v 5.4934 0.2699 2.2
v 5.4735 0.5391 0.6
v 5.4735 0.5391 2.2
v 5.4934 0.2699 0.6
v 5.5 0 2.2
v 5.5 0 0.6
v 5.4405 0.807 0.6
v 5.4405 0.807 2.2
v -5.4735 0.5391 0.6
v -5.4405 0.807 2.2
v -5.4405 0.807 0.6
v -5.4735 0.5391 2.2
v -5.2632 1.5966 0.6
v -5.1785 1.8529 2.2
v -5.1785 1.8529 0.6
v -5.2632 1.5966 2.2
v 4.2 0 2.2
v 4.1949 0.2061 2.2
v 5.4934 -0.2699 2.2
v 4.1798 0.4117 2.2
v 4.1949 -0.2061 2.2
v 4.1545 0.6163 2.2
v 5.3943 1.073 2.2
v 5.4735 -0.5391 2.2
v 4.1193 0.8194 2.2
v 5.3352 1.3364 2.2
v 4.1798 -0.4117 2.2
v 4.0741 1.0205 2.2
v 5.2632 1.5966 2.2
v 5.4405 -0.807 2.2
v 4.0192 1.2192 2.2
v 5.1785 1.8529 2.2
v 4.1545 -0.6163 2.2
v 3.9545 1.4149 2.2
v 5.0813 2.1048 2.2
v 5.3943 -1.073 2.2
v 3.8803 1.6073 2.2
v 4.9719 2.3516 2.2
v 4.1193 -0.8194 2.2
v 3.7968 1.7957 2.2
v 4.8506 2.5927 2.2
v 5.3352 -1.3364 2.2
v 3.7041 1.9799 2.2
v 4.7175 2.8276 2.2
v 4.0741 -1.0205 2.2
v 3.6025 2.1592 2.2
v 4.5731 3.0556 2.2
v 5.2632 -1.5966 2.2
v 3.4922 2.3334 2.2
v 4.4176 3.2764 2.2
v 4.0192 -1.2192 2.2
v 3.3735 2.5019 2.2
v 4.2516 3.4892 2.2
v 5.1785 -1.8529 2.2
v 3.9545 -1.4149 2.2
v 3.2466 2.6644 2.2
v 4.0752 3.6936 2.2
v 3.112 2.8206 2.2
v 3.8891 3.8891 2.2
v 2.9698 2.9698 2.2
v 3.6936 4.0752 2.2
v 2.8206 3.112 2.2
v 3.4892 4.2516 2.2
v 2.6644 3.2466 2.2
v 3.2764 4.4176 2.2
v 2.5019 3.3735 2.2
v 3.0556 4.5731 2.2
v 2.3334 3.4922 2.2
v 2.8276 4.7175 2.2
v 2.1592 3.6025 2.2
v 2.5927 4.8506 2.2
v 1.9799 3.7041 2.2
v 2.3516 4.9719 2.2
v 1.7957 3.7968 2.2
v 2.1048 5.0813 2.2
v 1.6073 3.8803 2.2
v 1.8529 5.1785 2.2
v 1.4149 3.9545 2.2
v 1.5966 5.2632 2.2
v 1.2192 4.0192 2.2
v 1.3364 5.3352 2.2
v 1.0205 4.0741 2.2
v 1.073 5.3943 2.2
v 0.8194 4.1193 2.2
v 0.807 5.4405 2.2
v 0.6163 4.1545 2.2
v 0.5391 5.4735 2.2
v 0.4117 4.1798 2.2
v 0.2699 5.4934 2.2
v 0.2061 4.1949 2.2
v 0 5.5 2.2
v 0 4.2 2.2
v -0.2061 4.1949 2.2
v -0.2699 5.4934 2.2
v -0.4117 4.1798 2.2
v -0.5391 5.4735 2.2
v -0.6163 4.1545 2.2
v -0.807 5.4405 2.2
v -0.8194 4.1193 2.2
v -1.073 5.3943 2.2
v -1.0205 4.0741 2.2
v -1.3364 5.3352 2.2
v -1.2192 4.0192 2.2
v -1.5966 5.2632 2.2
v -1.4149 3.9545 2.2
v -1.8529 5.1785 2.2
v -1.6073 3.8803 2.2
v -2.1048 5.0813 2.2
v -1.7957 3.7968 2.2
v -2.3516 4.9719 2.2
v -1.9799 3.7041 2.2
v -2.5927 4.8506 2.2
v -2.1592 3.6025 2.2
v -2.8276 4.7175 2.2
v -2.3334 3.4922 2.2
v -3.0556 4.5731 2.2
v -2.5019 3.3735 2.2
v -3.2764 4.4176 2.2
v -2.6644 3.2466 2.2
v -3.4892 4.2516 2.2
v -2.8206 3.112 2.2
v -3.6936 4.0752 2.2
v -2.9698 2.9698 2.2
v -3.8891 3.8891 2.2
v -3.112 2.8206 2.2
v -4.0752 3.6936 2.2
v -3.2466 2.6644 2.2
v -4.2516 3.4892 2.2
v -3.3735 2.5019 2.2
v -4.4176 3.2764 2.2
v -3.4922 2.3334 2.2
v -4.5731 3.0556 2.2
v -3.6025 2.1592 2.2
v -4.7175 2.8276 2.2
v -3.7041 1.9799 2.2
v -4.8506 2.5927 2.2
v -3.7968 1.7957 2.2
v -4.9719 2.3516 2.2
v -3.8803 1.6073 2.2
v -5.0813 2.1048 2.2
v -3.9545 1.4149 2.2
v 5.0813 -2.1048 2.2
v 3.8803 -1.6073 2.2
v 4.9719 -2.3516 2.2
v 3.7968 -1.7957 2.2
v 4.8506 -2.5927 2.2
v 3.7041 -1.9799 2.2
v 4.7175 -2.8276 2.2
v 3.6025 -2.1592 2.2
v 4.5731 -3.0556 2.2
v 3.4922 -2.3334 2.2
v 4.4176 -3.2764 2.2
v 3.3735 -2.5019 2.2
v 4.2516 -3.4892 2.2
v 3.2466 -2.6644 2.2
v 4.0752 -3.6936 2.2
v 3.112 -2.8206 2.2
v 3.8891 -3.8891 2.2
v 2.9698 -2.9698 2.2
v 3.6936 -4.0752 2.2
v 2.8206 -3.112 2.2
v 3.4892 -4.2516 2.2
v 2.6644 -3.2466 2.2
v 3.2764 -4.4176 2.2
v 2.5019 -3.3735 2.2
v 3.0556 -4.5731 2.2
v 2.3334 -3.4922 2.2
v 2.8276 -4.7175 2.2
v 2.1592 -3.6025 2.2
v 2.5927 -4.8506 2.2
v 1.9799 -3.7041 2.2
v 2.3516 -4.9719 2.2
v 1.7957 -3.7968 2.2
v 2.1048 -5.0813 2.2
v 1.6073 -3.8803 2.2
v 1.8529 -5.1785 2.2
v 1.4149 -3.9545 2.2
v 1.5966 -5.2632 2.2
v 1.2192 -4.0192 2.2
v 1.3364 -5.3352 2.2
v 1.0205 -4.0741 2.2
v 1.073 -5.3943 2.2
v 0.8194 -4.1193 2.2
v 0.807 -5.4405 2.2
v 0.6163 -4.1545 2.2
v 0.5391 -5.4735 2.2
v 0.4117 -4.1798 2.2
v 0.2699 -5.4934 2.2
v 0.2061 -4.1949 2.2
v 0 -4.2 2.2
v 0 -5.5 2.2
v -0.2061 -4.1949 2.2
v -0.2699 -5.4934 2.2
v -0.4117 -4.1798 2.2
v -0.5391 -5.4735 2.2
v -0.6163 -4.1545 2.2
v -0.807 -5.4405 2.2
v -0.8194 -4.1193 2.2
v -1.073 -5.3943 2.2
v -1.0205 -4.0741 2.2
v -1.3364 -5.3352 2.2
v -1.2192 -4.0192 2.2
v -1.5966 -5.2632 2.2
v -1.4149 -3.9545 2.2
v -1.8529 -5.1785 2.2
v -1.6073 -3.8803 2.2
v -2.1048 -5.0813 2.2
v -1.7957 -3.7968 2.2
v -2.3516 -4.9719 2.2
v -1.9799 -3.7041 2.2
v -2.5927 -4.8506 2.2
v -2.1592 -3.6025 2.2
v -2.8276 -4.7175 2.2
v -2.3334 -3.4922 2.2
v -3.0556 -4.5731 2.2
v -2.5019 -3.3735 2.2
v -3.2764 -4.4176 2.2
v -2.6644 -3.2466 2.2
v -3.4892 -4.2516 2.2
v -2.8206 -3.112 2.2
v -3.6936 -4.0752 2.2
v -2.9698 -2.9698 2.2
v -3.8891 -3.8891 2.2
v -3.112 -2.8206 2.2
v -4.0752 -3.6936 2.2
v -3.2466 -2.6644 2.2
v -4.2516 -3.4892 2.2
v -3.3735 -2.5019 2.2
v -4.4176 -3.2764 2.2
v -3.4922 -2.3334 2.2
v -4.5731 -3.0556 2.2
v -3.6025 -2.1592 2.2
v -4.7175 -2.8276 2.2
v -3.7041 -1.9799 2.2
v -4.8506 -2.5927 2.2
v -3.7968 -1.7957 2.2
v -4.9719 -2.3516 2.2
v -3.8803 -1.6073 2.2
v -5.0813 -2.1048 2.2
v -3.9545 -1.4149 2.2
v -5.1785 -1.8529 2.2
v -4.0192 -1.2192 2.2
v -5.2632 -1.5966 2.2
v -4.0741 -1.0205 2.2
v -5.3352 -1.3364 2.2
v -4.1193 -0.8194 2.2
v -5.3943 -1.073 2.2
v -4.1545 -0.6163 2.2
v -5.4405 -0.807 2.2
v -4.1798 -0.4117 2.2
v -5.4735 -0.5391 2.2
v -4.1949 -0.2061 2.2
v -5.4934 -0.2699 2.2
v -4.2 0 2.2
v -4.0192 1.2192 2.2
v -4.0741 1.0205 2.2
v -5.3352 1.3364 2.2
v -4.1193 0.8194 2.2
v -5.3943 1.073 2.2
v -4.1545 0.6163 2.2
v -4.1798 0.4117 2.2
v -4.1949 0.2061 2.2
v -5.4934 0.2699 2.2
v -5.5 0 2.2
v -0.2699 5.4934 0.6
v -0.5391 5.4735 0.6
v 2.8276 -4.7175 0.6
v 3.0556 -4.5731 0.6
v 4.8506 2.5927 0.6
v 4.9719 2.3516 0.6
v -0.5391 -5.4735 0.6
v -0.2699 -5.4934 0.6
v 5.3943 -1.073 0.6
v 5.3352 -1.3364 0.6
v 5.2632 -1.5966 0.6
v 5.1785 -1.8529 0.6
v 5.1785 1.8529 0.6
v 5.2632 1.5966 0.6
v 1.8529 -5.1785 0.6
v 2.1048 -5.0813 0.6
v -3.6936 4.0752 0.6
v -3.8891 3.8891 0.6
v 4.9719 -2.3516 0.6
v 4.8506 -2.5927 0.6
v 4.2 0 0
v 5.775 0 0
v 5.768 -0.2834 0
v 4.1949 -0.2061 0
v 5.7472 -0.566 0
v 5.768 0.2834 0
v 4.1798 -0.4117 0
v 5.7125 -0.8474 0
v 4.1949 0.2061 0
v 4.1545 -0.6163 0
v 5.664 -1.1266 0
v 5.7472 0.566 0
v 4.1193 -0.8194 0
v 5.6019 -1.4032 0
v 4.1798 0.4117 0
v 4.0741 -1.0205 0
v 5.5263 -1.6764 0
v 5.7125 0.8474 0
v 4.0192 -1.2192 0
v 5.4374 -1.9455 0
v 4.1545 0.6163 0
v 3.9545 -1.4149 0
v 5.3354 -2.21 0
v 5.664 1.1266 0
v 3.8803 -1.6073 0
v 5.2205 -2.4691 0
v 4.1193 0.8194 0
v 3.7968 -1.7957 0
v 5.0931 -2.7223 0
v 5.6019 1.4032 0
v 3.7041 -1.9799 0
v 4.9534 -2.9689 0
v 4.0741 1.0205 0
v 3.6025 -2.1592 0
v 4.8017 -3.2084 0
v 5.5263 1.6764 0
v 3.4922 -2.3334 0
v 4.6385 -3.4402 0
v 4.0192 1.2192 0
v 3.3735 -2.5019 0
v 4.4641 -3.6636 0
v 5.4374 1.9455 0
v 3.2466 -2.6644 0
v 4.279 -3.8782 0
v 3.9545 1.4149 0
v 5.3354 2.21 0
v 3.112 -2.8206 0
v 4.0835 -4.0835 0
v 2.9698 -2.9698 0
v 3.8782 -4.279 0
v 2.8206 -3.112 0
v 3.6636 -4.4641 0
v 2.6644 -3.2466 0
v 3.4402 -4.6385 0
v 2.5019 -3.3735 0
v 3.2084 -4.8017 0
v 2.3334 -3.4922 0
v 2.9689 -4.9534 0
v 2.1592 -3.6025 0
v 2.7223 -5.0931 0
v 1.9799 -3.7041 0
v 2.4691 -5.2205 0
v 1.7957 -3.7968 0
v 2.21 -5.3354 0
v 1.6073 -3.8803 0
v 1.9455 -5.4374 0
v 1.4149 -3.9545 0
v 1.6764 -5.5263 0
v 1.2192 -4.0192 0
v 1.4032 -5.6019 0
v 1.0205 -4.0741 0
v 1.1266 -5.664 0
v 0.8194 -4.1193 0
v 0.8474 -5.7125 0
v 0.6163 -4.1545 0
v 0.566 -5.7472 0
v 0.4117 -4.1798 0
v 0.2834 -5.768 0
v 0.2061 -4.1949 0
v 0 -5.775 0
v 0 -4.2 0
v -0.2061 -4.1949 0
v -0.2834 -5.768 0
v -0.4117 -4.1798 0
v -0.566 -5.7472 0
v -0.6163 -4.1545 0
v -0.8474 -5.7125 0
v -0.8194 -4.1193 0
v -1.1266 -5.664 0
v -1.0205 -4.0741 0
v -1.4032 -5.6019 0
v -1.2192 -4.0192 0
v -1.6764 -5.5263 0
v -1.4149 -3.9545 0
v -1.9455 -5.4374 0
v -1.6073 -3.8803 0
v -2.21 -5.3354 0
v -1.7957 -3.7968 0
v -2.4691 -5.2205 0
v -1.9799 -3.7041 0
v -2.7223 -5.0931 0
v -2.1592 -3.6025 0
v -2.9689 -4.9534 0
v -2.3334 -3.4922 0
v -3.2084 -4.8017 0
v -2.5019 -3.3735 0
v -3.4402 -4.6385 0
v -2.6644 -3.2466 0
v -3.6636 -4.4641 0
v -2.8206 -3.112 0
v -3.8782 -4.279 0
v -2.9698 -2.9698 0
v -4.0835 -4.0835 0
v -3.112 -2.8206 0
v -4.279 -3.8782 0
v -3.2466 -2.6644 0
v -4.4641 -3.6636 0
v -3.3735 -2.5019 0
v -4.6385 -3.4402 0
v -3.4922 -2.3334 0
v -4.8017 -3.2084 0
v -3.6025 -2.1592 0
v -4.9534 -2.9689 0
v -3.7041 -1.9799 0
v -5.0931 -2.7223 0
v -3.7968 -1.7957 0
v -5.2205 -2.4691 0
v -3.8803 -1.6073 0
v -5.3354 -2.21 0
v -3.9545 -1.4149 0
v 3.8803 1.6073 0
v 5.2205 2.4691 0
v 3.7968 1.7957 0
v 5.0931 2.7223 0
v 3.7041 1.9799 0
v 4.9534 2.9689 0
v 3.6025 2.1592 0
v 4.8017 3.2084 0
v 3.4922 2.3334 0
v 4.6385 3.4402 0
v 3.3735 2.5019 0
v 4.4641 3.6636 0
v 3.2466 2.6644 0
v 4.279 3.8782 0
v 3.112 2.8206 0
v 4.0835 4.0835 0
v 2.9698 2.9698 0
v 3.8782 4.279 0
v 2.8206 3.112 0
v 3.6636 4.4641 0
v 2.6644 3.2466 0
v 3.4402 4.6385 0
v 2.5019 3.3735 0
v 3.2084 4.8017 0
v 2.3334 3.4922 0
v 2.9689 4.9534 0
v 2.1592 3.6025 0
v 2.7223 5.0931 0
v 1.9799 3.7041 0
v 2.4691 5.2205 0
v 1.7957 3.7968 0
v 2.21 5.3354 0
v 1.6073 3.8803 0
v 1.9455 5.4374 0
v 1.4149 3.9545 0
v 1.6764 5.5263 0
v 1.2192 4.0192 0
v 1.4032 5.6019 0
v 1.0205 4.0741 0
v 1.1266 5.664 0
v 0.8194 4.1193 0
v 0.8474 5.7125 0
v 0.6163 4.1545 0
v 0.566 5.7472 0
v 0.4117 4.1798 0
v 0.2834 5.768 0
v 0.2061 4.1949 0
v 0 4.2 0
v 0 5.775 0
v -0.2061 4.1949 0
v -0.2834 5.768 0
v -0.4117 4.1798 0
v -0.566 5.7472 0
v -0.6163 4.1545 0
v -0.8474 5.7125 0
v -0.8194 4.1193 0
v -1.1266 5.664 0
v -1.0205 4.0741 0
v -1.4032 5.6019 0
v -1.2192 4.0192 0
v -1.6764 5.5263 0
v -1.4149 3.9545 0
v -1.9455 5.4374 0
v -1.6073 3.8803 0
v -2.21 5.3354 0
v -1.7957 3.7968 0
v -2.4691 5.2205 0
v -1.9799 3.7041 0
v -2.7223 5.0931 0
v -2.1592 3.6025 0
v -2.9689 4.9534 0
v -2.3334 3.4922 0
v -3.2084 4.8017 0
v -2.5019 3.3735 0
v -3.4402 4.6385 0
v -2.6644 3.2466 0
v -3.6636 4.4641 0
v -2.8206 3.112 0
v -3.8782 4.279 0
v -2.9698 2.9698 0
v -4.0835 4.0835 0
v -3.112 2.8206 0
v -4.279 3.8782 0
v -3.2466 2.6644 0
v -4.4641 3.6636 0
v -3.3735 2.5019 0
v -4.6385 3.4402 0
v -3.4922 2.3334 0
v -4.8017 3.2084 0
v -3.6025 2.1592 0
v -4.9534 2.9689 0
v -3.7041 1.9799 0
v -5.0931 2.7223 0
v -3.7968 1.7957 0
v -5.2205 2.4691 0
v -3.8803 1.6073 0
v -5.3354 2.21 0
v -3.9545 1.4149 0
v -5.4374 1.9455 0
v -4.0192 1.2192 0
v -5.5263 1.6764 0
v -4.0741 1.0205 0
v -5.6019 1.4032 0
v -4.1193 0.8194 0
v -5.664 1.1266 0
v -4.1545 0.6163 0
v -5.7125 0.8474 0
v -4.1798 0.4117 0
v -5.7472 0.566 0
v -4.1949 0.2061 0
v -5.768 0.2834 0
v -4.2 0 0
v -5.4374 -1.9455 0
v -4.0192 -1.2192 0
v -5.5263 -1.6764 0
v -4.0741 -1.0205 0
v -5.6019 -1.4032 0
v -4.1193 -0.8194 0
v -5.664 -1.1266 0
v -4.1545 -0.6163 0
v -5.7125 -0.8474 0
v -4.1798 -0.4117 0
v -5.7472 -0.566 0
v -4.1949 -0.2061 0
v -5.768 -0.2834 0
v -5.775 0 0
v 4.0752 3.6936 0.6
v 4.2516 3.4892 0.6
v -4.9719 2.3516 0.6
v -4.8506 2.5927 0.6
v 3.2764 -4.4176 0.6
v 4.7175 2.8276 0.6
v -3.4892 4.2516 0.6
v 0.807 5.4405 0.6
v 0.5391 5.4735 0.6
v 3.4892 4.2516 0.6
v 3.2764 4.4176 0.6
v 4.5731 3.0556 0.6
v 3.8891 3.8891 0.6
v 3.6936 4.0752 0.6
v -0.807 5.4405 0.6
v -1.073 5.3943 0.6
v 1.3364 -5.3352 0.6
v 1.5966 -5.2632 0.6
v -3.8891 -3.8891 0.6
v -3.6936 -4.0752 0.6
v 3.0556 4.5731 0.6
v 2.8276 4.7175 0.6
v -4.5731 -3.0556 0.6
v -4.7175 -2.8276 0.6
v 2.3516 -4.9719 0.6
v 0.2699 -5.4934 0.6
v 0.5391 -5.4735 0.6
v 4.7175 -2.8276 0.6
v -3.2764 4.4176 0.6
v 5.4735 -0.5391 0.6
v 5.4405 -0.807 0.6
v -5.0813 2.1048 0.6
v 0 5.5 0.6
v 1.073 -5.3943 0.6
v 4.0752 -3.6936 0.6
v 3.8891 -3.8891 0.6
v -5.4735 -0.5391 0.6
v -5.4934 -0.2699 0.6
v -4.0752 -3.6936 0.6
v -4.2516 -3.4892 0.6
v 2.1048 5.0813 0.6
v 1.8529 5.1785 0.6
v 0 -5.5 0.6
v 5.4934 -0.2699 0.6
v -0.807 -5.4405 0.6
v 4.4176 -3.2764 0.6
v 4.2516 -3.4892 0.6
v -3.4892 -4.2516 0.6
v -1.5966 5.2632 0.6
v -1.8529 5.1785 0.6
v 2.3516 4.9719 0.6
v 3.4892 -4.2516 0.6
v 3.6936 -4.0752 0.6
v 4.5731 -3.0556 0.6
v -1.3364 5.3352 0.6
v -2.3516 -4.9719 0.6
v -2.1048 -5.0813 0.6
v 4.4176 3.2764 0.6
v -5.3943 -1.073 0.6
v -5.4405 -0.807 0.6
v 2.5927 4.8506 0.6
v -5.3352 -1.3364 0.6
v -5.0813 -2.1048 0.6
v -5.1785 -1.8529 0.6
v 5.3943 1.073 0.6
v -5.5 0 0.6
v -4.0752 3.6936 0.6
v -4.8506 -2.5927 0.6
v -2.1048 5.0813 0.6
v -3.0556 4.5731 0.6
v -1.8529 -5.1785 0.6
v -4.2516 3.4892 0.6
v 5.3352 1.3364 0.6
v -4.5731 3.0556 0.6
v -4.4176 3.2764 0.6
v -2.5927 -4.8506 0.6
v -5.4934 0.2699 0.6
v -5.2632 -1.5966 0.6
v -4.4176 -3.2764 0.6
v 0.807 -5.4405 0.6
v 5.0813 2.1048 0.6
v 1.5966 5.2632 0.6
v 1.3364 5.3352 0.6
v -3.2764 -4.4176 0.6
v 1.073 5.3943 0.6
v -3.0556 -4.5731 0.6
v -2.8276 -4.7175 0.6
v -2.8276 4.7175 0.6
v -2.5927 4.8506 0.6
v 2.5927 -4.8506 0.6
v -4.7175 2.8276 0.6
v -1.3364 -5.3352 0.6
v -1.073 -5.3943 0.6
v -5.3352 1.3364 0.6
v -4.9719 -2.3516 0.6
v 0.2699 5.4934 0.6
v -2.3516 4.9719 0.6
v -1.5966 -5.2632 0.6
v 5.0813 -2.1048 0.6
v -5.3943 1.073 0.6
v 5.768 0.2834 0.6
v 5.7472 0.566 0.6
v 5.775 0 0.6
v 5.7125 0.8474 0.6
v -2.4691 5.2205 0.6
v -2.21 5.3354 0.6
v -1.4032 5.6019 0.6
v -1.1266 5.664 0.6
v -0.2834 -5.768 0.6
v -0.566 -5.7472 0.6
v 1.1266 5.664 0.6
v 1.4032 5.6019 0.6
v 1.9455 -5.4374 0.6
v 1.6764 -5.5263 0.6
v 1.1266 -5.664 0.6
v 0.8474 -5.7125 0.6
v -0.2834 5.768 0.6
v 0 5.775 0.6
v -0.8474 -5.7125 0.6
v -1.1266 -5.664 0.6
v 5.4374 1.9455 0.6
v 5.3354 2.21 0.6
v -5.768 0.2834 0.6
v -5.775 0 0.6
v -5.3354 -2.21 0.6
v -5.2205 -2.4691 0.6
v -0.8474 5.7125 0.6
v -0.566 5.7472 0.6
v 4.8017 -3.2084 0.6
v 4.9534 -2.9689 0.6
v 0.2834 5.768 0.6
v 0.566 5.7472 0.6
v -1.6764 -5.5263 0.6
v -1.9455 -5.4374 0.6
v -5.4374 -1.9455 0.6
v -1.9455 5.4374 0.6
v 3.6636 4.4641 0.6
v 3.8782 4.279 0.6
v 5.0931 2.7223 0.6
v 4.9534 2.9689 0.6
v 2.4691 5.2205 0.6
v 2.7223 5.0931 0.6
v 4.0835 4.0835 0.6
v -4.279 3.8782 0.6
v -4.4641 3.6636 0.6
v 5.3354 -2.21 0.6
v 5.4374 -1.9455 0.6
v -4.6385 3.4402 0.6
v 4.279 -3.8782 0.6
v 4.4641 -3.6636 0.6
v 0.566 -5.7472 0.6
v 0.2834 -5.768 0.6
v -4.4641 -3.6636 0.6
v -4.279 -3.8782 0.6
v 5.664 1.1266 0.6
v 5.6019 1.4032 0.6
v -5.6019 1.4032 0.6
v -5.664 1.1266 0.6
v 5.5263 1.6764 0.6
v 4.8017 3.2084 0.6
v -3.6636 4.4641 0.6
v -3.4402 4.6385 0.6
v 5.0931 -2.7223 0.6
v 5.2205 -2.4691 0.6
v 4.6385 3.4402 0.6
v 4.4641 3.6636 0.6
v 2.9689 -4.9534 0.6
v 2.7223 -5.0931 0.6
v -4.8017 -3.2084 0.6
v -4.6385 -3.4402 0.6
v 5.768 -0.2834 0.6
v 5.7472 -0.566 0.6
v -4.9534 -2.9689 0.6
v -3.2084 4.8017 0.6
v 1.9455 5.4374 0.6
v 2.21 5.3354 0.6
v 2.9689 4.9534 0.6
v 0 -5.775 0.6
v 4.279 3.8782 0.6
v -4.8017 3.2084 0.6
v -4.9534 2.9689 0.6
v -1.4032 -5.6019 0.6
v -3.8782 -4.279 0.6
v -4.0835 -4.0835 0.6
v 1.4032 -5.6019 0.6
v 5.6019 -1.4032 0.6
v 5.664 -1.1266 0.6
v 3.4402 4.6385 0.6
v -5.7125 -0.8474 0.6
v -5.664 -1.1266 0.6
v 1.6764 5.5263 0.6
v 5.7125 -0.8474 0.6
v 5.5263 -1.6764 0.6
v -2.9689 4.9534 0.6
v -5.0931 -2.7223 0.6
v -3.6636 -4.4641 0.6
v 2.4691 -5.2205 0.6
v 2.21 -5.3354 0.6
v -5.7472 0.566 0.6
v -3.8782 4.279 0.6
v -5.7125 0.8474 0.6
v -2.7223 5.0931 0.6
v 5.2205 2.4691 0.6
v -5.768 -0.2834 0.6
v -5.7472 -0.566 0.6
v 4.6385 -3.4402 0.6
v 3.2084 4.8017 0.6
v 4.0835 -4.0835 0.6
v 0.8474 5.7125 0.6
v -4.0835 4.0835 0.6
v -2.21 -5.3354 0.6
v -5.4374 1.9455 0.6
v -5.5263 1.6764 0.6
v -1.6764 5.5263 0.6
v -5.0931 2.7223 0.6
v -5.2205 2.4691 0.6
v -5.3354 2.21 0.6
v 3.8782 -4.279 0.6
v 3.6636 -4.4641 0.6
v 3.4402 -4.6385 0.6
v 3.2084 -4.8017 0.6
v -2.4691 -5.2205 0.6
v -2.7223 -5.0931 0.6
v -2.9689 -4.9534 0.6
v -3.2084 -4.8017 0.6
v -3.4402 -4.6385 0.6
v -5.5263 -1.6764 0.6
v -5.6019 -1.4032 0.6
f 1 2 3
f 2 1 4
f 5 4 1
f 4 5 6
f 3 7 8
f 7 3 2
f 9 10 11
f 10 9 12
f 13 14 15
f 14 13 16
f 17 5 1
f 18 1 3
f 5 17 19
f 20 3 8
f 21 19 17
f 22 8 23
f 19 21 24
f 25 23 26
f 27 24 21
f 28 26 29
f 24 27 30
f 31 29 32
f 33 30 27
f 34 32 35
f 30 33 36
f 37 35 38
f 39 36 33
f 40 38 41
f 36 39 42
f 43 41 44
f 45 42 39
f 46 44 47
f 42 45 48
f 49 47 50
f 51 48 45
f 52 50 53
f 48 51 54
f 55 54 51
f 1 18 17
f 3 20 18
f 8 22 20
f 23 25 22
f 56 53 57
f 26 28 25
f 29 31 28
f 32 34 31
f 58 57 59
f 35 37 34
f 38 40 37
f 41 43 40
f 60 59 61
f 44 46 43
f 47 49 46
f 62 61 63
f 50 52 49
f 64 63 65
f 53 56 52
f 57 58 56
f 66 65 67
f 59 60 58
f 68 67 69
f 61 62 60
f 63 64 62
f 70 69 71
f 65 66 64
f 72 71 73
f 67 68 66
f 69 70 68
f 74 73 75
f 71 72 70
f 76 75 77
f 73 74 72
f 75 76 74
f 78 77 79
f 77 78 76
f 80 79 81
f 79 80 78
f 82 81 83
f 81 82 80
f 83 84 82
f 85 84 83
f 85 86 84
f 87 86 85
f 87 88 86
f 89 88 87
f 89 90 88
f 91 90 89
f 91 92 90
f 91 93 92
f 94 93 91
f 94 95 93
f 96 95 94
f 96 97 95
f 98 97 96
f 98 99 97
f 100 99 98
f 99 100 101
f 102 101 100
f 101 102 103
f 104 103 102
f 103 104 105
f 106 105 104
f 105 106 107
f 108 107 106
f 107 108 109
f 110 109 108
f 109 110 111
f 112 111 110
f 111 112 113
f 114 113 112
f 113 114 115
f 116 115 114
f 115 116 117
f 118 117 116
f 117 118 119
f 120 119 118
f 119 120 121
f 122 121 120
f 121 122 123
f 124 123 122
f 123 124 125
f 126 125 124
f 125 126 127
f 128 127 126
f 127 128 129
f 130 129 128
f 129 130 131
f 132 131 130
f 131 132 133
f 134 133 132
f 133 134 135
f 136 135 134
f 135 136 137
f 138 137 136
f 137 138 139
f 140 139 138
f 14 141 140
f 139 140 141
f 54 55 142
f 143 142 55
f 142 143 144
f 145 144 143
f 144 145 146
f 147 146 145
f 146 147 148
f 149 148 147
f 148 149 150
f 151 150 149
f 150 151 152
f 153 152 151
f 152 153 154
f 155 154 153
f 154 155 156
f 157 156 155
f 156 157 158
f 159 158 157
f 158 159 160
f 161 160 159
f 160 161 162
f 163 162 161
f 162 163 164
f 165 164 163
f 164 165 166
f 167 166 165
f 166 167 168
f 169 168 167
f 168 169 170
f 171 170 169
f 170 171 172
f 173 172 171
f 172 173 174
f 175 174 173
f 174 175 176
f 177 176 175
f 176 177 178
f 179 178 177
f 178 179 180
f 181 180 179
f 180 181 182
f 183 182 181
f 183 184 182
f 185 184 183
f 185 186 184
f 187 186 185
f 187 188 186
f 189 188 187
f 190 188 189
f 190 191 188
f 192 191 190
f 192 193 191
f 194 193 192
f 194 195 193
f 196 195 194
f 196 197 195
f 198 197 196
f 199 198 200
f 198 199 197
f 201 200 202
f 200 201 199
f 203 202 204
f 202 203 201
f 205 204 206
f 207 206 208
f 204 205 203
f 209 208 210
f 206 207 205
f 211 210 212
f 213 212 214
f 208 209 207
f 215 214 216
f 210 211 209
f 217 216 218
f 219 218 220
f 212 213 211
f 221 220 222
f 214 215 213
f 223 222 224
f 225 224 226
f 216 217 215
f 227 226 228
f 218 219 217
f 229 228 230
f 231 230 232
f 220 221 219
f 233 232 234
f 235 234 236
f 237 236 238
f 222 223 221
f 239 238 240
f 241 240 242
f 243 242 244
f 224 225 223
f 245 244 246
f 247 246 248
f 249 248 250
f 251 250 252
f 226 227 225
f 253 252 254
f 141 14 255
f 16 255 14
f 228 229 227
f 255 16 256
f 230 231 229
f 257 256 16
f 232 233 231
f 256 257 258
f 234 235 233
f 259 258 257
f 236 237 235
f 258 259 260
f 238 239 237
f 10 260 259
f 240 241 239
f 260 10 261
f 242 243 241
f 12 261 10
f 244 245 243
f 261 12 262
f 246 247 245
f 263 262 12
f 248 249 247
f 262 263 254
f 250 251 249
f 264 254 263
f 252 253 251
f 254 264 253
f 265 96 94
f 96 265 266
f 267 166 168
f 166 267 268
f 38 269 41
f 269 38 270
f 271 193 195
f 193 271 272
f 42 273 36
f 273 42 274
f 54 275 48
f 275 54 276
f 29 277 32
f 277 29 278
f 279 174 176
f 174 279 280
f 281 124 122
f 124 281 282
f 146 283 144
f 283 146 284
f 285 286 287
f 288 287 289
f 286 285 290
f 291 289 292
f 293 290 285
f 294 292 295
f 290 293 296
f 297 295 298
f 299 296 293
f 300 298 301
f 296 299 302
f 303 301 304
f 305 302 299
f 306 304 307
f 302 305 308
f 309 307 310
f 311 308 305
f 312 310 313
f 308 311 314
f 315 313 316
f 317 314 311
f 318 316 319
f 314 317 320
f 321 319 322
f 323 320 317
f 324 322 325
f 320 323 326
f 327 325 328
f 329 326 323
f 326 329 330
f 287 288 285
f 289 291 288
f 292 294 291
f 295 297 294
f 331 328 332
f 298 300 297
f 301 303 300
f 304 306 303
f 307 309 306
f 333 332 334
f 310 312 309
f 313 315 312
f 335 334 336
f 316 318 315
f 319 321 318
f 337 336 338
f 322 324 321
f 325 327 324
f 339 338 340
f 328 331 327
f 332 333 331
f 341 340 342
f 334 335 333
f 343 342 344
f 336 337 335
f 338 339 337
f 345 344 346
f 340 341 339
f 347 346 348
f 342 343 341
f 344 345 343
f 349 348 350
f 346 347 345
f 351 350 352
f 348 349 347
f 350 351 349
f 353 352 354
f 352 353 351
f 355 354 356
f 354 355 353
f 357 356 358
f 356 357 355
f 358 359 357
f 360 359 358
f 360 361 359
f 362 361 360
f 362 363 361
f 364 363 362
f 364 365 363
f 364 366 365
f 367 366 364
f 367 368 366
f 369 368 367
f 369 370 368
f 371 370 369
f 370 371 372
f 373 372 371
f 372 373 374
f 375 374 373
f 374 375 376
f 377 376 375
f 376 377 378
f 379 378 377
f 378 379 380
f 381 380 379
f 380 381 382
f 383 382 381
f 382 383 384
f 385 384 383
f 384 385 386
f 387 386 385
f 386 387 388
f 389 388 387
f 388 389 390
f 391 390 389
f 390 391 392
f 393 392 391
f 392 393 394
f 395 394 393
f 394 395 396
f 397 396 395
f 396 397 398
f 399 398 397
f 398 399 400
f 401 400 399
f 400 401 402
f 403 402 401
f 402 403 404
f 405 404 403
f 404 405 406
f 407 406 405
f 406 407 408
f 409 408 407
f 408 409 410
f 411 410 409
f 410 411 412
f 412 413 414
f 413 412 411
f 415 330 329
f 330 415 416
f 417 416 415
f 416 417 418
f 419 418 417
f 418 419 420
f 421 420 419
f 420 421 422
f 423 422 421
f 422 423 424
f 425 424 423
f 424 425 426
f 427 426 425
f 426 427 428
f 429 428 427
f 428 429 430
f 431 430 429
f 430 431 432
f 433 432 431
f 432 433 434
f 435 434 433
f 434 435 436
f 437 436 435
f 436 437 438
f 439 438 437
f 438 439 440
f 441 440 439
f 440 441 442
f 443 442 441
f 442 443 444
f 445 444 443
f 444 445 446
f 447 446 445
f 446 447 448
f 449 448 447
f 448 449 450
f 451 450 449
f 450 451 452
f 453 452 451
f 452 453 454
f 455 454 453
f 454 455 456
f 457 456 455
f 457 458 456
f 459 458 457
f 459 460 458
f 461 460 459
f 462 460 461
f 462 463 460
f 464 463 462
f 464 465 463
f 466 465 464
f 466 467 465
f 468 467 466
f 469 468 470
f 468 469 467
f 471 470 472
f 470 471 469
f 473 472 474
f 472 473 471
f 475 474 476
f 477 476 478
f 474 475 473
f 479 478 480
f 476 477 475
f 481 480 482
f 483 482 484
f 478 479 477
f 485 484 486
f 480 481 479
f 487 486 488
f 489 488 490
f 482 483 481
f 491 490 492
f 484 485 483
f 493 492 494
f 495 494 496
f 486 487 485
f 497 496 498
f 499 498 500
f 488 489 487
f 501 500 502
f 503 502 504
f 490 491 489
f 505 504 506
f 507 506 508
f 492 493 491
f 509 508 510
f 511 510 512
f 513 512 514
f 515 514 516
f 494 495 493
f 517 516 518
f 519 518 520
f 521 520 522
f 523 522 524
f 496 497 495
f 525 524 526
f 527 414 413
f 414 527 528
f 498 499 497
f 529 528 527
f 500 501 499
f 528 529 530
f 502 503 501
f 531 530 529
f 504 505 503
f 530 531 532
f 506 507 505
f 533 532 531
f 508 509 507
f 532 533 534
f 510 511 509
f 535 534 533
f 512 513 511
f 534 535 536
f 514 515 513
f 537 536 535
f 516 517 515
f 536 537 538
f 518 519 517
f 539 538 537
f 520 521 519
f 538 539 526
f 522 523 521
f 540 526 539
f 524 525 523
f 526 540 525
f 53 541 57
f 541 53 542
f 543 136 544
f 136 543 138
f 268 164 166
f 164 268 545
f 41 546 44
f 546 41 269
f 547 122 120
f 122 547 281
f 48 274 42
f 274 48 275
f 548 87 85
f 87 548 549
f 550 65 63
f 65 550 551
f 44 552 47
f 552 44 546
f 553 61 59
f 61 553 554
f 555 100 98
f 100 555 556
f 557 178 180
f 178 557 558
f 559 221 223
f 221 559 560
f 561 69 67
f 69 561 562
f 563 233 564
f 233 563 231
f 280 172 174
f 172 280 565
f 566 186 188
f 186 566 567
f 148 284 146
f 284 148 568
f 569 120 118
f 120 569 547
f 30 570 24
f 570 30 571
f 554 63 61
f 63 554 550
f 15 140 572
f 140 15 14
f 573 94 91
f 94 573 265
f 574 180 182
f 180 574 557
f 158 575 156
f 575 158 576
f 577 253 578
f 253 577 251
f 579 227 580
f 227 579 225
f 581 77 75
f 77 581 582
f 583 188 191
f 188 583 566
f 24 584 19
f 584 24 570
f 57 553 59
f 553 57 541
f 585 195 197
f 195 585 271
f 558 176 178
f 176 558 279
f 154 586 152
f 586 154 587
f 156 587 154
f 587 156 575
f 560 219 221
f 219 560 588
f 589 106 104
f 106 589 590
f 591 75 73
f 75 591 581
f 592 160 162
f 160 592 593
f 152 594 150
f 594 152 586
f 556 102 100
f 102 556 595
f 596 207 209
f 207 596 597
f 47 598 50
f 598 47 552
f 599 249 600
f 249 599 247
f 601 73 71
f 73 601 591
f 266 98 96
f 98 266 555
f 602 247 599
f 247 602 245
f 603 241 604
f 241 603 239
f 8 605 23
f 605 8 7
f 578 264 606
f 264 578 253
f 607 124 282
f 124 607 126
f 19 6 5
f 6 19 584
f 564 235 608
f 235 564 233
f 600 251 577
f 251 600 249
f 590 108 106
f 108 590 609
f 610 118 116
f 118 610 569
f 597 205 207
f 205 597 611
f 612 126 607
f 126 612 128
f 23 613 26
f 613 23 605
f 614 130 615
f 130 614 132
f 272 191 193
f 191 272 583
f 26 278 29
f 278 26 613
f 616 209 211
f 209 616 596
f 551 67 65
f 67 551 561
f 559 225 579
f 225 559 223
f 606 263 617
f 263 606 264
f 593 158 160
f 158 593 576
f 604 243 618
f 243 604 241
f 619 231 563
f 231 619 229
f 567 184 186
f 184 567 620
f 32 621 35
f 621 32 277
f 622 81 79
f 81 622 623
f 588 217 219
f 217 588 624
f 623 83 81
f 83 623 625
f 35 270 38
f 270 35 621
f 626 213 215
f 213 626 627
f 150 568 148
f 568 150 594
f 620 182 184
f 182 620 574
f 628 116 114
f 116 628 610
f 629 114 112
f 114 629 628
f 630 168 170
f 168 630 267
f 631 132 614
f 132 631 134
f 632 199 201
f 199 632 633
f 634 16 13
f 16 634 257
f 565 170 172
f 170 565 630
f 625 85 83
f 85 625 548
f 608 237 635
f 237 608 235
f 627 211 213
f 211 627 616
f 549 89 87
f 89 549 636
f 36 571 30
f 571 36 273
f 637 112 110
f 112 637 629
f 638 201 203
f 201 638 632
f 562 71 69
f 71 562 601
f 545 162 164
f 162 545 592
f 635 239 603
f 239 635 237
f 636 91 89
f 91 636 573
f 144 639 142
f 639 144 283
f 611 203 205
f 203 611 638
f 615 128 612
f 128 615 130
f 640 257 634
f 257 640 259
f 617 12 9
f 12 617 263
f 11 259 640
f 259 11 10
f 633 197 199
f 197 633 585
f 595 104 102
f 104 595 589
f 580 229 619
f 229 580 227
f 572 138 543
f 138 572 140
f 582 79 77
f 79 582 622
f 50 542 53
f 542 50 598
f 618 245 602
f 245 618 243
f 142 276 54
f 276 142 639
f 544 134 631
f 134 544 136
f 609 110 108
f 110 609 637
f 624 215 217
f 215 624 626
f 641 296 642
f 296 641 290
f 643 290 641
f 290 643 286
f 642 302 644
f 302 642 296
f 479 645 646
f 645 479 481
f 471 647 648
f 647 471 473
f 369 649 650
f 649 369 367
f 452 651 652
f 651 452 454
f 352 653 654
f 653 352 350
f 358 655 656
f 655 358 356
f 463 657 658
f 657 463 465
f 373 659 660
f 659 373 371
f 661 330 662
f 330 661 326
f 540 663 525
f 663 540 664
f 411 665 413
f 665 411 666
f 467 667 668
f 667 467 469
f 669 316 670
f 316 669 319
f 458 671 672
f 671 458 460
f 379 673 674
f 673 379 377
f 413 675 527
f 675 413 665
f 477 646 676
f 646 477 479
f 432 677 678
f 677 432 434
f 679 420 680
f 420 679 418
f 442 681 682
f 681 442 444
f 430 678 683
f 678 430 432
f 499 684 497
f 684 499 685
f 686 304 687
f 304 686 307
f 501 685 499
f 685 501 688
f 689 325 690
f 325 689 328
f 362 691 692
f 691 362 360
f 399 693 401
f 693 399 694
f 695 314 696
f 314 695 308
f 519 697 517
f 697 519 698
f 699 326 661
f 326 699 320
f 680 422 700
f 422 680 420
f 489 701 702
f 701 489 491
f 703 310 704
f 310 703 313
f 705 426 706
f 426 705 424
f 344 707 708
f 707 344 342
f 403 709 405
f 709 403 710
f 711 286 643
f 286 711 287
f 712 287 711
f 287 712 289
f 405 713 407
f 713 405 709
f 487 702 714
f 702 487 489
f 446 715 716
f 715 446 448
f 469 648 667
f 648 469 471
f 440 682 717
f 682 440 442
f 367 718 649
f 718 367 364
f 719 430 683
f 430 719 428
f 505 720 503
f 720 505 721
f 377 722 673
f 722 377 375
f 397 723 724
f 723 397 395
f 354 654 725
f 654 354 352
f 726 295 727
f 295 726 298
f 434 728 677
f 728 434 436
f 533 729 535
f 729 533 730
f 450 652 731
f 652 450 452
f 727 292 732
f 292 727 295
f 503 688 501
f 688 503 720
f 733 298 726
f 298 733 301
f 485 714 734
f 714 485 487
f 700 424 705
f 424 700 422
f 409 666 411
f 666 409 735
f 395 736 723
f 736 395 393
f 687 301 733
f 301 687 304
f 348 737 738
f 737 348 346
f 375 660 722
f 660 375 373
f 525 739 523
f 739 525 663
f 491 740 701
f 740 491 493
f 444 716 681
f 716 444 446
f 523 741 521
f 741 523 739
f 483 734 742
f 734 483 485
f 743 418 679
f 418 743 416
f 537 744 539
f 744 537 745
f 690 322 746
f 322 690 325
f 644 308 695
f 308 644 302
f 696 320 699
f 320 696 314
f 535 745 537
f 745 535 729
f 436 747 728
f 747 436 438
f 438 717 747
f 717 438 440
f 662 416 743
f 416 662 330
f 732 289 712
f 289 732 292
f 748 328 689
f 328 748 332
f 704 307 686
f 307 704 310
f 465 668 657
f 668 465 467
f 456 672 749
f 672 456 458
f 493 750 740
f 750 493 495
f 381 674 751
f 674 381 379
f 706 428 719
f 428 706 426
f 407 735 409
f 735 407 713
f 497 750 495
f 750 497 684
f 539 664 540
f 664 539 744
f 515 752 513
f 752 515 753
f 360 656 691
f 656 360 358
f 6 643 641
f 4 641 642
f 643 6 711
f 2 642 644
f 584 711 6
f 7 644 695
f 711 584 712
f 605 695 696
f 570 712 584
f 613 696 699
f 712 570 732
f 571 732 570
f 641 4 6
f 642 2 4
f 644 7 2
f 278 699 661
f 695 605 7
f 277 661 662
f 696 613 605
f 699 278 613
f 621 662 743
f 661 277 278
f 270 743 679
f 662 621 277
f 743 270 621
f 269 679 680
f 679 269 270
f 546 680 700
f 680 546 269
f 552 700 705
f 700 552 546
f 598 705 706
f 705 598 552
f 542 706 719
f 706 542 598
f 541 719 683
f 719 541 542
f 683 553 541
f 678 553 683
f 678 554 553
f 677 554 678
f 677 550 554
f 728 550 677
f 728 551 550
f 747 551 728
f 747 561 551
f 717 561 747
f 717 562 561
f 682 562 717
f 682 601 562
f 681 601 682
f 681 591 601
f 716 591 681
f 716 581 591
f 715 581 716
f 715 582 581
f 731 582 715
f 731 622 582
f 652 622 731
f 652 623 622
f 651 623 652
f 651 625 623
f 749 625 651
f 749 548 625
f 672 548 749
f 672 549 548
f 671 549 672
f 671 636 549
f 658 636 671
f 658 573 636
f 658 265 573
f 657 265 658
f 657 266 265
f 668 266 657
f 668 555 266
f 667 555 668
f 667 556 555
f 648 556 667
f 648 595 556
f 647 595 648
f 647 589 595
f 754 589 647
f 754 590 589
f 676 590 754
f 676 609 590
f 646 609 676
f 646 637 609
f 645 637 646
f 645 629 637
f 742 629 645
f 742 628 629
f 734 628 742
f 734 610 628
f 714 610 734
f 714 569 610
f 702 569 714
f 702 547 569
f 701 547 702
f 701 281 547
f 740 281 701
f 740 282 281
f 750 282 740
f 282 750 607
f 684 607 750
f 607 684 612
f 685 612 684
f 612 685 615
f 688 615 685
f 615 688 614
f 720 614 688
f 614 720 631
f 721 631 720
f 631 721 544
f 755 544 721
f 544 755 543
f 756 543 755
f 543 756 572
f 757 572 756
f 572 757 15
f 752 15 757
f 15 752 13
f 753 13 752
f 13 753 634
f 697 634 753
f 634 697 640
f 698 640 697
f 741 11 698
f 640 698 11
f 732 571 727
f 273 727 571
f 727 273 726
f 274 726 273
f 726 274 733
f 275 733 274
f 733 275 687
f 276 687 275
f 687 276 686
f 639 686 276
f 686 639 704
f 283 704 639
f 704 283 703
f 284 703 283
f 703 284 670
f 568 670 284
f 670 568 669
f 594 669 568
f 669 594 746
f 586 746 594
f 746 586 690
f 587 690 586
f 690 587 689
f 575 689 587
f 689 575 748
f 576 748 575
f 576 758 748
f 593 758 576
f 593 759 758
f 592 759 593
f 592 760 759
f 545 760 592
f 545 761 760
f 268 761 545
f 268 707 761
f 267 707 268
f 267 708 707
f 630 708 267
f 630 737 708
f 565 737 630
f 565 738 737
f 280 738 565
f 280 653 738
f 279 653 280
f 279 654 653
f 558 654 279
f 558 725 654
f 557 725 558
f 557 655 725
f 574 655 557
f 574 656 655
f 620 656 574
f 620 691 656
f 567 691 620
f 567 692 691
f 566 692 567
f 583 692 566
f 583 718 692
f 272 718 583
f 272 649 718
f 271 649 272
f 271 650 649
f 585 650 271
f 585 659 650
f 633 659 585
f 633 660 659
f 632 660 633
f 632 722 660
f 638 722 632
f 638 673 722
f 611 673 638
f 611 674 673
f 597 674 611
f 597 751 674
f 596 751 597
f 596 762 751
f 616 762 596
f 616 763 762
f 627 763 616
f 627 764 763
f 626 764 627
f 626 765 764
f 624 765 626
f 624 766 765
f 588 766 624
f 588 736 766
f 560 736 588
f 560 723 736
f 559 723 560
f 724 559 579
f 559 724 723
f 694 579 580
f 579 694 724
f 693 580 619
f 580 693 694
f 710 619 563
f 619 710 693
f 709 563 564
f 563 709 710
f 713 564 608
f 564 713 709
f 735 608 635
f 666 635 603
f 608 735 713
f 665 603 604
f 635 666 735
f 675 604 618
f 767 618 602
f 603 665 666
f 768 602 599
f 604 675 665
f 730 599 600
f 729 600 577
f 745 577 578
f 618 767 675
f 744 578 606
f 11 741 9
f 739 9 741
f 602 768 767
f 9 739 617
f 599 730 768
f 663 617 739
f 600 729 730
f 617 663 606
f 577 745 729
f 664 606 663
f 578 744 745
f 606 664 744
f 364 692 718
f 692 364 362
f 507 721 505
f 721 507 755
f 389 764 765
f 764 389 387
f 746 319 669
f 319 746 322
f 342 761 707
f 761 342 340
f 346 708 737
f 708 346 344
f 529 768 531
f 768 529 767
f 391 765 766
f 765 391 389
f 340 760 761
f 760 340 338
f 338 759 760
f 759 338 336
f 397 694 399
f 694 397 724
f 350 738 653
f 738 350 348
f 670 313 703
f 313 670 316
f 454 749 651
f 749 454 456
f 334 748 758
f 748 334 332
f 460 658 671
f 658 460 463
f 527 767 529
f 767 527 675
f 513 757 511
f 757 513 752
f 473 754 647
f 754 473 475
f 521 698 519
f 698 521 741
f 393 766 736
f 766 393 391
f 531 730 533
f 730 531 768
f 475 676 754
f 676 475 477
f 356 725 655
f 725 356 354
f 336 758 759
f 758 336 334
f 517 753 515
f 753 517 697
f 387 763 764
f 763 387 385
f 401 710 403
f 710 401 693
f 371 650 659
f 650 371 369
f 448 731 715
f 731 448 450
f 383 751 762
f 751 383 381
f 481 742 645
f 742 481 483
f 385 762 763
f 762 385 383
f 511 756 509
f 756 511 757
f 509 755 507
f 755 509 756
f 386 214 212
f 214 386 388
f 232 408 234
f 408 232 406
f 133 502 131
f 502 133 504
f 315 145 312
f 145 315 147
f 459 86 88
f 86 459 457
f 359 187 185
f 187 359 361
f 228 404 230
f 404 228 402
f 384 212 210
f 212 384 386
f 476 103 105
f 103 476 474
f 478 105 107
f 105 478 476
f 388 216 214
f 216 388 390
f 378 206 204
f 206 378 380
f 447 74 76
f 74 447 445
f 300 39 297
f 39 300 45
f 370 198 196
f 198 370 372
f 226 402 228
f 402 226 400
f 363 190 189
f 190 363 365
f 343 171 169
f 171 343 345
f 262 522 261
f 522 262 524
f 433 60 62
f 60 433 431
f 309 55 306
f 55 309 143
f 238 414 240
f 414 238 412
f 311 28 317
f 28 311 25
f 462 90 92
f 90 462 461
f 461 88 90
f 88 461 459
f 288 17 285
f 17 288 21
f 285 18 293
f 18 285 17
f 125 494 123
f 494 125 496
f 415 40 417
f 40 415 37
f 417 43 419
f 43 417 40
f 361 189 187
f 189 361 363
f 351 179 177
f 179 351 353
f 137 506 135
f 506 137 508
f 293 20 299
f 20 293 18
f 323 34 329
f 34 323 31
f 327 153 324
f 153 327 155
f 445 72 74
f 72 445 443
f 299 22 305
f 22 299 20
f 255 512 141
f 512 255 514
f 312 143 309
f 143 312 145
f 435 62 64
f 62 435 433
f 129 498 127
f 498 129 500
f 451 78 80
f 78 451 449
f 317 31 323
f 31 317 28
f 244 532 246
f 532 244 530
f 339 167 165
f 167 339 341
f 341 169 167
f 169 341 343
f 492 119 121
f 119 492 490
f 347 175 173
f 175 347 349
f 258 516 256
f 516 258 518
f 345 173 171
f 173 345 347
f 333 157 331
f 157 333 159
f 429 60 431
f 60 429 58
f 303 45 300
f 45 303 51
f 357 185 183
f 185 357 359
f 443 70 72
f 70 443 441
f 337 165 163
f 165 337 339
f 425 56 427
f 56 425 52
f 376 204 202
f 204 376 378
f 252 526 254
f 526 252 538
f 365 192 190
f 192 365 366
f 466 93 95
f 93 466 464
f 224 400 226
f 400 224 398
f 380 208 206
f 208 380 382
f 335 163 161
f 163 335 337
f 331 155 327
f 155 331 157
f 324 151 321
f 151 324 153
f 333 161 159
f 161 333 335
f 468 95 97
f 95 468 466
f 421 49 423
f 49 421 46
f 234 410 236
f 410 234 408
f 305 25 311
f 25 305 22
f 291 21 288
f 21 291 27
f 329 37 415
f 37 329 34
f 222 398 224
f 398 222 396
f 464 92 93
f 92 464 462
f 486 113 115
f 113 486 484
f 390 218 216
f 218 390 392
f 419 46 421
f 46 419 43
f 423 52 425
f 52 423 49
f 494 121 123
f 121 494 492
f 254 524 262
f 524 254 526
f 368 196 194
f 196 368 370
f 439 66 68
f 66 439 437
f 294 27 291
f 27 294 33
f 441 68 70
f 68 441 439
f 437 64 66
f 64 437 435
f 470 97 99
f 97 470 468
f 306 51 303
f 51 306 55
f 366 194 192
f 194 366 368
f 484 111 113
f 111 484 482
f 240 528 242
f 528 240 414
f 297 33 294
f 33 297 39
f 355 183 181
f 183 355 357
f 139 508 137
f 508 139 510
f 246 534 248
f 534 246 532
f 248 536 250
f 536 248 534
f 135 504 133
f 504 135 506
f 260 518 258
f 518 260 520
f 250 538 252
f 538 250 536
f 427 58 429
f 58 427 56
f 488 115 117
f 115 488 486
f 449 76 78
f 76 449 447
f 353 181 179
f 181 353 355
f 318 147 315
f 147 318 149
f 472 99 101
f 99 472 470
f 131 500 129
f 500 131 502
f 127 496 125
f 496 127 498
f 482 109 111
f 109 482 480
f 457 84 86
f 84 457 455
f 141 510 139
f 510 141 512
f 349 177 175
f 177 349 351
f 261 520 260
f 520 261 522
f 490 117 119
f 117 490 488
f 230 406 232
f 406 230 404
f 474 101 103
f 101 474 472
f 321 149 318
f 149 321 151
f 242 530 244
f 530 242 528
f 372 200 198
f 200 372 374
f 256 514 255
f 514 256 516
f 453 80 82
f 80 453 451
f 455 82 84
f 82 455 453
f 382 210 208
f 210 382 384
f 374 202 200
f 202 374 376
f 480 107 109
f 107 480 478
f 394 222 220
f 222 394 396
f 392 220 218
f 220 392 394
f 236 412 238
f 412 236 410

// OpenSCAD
// V2 TPU gasket. Wide lip down for printing, inward for assembly.
$fn=128;
difference() {
 union() {
  cylinder(d=11,h=2.2);
  cylinder(d=11.55,h=0.6);
 }
 translate([0,0,-0.1]) cylinder(d=8.4,h=2.4);
}
